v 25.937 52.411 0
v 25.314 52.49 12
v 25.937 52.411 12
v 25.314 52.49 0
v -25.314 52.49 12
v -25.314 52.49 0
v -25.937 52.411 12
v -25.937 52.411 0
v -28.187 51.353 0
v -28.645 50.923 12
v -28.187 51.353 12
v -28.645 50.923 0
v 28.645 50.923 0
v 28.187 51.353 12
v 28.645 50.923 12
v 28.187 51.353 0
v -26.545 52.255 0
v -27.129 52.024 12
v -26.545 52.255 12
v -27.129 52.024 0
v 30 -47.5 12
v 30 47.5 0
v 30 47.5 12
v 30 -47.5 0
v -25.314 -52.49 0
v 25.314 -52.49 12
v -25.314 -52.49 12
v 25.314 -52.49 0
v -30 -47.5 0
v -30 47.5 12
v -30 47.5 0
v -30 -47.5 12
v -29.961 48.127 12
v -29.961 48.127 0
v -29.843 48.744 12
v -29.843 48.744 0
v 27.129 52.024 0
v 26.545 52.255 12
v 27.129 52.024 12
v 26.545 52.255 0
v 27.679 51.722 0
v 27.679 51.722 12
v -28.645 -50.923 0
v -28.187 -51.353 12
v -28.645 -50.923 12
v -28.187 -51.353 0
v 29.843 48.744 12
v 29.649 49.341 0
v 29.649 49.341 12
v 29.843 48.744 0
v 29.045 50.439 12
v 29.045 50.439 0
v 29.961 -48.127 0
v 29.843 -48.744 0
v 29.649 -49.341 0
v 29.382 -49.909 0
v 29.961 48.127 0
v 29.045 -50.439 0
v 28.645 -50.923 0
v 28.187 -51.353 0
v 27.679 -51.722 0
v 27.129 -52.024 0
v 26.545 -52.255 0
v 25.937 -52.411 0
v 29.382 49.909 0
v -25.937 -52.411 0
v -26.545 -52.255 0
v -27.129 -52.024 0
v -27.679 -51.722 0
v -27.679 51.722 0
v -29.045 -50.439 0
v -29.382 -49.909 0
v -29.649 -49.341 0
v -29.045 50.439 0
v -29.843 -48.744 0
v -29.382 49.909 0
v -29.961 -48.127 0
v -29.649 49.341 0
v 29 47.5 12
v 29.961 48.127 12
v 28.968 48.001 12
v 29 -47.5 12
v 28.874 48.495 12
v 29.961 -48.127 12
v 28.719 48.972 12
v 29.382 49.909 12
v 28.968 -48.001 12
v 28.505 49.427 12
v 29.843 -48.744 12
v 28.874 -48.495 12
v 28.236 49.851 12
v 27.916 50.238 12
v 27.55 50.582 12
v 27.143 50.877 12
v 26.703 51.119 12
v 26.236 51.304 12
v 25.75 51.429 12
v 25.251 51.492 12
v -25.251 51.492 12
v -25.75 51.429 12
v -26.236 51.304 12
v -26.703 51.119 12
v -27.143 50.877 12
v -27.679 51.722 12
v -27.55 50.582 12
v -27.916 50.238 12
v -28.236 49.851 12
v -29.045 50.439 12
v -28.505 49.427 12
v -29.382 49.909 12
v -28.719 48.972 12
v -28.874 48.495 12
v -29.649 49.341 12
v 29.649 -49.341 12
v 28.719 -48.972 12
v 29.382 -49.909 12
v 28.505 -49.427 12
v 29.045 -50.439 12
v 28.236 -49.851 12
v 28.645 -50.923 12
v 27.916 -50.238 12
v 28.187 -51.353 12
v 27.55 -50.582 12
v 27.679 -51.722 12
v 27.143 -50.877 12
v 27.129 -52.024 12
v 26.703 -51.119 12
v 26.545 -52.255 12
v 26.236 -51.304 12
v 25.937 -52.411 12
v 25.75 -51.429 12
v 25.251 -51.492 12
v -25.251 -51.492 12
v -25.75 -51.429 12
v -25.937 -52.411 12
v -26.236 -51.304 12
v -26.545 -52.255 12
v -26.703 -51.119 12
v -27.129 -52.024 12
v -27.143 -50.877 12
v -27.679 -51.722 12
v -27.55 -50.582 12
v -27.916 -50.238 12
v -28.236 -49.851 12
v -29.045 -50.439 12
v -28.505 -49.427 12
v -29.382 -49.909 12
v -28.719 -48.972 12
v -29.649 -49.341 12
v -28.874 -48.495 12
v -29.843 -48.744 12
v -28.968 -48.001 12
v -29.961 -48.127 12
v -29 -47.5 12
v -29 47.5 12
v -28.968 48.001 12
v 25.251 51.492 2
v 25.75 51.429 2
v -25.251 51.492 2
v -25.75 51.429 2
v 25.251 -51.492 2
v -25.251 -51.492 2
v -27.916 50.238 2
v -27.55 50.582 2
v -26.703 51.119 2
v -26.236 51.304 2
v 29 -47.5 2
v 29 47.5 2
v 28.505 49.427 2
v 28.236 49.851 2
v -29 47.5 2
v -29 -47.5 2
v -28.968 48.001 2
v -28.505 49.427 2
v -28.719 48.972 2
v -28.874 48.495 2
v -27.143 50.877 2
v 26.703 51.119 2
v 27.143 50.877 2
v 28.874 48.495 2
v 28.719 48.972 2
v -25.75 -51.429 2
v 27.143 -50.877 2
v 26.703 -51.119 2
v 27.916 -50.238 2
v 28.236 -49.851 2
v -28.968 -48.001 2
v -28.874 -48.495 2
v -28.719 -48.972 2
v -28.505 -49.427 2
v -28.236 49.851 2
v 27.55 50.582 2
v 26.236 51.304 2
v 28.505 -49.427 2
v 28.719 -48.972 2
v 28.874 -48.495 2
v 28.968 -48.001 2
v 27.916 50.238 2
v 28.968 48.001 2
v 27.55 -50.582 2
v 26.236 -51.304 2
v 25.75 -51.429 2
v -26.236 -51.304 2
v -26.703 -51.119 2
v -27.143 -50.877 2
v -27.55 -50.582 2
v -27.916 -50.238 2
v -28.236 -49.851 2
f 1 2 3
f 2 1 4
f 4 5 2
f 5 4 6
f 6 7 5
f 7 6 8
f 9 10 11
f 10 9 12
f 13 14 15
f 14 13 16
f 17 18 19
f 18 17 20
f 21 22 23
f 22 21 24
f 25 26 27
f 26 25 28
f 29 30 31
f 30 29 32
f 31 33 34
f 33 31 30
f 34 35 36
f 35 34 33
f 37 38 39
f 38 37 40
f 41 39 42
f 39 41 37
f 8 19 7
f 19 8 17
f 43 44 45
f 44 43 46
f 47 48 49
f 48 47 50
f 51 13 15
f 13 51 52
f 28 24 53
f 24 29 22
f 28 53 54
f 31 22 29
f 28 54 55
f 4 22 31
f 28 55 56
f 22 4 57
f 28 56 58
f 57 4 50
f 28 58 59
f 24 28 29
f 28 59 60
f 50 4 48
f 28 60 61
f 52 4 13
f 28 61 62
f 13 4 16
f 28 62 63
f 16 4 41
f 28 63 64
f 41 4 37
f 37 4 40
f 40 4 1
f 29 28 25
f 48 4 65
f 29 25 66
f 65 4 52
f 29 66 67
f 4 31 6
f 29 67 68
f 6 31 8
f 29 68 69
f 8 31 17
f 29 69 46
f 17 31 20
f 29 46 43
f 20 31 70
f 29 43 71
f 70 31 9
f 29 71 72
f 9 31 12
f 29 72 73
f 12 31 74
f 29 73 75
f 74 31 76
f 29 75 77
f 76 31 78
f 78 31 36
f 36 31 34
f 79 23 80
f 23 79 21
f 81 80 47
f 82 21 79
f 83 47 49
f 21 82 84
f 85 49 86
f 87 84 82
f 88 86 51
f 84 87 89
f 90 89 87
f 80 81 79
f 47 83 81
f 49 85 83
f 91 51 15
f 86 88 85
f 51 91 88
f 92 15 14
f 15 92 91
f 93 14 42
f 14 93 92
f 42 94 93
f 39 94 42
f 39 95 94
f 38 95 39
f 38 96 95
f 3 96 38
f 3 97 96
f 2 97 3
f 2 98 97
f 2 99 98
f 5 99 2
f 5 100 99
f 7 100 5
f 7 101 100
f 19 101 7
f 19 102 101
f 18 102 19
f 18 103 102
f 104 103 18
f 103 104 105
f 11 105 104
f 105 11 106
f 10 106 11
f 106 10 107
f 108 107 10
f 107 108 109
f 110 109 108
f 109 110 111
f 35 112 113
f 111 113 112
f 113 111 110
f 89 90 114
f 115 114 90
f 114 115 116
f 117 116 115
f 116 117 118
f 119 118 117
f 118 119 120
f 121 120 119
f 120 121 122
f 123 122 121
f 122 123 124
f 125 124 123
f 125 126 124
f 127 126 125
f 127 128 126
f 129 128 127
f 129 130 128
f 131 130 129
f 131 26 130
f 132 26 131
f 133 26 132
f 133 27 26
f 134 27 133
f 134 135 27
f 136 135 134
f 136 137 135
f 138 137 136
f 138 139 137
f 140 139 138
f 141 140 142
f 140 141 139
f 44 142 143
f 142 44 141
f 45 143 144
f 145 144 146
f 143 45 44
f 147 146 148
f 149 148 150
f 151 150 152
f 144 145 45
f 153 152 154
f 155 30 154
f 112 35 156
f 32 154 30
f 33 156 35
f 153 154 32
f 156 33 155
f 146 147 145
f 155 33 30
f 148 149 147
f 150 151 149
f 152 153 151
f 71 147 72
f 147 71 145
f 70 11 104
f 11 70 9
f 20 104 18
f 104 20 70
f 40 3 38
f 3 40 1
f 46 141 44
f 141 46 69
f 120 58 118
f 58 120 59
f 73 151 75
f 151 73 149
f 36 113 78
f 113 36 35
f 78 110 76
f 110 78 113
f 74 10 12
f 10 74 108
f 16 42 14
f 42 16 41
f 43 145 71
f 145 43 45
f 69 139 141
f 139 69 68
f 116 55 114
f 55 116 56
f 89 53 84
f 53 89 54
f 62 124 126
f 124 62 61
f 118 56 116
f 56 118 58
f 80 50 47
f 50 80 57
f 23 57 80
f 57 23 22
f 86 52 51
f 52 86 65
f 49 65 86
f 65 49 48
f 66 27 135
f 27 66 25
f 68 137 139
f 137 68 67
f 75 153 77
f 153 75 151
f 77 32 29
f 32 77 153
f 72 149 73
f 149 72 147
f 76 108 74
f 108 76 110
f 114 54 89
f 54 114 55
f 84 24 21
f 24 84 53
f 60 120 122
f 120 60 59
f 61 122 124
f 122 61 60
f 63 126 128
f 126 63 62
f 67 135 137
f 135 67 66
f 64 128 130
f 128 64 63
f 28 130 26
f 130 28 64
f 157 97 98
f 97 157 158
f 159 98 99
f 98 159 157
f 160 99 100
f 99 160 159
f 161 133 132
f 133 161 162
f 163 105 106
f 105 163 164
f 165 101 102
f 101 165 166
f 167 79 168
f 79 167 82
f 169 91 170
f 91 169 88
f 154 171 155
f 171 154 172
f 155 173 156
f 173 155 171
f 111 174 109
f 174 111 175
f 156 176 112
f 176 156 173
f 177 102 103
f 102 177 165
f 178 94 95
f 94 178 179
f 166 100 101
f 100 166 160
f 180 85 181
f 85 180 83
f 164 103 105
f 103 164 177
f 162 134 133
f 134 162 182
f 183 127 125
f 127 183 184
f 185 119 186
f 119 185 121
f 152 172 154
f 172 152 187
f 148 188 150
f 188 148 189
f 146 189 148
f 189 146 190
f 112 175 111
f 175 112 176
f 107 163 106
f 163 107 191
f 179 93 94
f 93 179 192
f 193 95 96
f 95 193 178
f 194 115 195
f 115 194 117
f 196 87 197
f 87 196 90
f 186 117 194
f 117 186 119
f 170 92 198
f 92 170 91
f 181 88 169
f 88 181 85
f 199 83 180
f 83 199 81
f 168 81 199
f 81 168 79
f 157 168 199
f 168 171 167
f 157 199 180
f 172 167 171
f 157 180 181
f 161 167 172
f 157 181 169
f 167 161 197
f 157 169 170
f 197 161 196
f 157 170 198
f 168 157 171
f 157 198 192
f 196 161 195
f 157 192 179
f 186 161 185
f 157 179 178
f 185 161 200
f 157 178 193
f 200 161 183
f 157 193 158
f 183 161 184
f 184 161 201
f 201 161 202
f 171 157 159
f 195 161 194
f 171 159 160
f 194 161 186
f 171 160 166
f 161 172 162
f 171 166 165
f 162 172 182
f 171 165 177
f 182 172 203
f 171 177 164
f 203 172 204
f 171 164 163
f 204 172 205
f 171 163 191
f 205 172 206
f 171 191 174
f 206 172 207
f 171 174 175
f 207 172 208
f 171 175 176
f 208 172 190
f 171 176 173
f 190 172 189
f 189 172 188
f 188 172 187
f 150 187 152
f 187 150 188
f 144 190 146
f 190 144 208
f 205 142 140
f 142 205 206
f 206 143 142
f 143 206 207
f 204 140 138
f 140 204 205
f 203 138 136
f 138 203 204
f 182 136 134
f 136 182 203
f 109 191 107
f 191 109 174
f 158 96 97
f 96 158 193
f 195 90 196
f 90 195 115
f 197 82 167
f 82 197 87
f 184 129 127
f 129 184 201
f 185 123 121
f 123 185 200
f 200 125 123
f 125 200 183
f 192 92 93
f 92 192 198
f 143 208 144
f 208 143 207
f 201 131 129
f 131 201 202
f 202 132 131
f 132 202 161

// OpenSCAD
$fn = 50;


difference() {
	union() {
		hull() {
			translate(v = [-25.0000000000, 47.5000000000, 0]) {
				cylinder(h = 12, r = 5);
			}
			translate(v = [25.0000000000, 47.5000000000, 0]) {
				cylinder(h = 12, r = 5);
			}
			translate(v = [-25.0000000000, -47.5000000000, 0]) {
				cylinder(h = 12, r = 5);
			}
			translate(v = [25.0000000000, -47.5000000000, 0]) {
				cylinder(h = 12, r = 5);
			}
		}
	}
	union() {
		translate(v = [0, 0, 2]) {
			hull() {
				translate(v = [-25.0000000000, 47.5000000000, 0]) {
					cylinder(h = 10, r = 4);
				}
				translate(v = [25.0000000000, 47.5000000000, 0]) {
					cylinder(h = 10, r = 4);
				}
				translate(v = [-25.0000000000, -47.5000000000, 0]) {
					cylinder(h = 10, r = 4);
				}
				translate(v = [25.0000000000, -47.5000000000, 0]) {
					cylinder(h = 10, r = 4);
				}
			}
		}
	}
}
